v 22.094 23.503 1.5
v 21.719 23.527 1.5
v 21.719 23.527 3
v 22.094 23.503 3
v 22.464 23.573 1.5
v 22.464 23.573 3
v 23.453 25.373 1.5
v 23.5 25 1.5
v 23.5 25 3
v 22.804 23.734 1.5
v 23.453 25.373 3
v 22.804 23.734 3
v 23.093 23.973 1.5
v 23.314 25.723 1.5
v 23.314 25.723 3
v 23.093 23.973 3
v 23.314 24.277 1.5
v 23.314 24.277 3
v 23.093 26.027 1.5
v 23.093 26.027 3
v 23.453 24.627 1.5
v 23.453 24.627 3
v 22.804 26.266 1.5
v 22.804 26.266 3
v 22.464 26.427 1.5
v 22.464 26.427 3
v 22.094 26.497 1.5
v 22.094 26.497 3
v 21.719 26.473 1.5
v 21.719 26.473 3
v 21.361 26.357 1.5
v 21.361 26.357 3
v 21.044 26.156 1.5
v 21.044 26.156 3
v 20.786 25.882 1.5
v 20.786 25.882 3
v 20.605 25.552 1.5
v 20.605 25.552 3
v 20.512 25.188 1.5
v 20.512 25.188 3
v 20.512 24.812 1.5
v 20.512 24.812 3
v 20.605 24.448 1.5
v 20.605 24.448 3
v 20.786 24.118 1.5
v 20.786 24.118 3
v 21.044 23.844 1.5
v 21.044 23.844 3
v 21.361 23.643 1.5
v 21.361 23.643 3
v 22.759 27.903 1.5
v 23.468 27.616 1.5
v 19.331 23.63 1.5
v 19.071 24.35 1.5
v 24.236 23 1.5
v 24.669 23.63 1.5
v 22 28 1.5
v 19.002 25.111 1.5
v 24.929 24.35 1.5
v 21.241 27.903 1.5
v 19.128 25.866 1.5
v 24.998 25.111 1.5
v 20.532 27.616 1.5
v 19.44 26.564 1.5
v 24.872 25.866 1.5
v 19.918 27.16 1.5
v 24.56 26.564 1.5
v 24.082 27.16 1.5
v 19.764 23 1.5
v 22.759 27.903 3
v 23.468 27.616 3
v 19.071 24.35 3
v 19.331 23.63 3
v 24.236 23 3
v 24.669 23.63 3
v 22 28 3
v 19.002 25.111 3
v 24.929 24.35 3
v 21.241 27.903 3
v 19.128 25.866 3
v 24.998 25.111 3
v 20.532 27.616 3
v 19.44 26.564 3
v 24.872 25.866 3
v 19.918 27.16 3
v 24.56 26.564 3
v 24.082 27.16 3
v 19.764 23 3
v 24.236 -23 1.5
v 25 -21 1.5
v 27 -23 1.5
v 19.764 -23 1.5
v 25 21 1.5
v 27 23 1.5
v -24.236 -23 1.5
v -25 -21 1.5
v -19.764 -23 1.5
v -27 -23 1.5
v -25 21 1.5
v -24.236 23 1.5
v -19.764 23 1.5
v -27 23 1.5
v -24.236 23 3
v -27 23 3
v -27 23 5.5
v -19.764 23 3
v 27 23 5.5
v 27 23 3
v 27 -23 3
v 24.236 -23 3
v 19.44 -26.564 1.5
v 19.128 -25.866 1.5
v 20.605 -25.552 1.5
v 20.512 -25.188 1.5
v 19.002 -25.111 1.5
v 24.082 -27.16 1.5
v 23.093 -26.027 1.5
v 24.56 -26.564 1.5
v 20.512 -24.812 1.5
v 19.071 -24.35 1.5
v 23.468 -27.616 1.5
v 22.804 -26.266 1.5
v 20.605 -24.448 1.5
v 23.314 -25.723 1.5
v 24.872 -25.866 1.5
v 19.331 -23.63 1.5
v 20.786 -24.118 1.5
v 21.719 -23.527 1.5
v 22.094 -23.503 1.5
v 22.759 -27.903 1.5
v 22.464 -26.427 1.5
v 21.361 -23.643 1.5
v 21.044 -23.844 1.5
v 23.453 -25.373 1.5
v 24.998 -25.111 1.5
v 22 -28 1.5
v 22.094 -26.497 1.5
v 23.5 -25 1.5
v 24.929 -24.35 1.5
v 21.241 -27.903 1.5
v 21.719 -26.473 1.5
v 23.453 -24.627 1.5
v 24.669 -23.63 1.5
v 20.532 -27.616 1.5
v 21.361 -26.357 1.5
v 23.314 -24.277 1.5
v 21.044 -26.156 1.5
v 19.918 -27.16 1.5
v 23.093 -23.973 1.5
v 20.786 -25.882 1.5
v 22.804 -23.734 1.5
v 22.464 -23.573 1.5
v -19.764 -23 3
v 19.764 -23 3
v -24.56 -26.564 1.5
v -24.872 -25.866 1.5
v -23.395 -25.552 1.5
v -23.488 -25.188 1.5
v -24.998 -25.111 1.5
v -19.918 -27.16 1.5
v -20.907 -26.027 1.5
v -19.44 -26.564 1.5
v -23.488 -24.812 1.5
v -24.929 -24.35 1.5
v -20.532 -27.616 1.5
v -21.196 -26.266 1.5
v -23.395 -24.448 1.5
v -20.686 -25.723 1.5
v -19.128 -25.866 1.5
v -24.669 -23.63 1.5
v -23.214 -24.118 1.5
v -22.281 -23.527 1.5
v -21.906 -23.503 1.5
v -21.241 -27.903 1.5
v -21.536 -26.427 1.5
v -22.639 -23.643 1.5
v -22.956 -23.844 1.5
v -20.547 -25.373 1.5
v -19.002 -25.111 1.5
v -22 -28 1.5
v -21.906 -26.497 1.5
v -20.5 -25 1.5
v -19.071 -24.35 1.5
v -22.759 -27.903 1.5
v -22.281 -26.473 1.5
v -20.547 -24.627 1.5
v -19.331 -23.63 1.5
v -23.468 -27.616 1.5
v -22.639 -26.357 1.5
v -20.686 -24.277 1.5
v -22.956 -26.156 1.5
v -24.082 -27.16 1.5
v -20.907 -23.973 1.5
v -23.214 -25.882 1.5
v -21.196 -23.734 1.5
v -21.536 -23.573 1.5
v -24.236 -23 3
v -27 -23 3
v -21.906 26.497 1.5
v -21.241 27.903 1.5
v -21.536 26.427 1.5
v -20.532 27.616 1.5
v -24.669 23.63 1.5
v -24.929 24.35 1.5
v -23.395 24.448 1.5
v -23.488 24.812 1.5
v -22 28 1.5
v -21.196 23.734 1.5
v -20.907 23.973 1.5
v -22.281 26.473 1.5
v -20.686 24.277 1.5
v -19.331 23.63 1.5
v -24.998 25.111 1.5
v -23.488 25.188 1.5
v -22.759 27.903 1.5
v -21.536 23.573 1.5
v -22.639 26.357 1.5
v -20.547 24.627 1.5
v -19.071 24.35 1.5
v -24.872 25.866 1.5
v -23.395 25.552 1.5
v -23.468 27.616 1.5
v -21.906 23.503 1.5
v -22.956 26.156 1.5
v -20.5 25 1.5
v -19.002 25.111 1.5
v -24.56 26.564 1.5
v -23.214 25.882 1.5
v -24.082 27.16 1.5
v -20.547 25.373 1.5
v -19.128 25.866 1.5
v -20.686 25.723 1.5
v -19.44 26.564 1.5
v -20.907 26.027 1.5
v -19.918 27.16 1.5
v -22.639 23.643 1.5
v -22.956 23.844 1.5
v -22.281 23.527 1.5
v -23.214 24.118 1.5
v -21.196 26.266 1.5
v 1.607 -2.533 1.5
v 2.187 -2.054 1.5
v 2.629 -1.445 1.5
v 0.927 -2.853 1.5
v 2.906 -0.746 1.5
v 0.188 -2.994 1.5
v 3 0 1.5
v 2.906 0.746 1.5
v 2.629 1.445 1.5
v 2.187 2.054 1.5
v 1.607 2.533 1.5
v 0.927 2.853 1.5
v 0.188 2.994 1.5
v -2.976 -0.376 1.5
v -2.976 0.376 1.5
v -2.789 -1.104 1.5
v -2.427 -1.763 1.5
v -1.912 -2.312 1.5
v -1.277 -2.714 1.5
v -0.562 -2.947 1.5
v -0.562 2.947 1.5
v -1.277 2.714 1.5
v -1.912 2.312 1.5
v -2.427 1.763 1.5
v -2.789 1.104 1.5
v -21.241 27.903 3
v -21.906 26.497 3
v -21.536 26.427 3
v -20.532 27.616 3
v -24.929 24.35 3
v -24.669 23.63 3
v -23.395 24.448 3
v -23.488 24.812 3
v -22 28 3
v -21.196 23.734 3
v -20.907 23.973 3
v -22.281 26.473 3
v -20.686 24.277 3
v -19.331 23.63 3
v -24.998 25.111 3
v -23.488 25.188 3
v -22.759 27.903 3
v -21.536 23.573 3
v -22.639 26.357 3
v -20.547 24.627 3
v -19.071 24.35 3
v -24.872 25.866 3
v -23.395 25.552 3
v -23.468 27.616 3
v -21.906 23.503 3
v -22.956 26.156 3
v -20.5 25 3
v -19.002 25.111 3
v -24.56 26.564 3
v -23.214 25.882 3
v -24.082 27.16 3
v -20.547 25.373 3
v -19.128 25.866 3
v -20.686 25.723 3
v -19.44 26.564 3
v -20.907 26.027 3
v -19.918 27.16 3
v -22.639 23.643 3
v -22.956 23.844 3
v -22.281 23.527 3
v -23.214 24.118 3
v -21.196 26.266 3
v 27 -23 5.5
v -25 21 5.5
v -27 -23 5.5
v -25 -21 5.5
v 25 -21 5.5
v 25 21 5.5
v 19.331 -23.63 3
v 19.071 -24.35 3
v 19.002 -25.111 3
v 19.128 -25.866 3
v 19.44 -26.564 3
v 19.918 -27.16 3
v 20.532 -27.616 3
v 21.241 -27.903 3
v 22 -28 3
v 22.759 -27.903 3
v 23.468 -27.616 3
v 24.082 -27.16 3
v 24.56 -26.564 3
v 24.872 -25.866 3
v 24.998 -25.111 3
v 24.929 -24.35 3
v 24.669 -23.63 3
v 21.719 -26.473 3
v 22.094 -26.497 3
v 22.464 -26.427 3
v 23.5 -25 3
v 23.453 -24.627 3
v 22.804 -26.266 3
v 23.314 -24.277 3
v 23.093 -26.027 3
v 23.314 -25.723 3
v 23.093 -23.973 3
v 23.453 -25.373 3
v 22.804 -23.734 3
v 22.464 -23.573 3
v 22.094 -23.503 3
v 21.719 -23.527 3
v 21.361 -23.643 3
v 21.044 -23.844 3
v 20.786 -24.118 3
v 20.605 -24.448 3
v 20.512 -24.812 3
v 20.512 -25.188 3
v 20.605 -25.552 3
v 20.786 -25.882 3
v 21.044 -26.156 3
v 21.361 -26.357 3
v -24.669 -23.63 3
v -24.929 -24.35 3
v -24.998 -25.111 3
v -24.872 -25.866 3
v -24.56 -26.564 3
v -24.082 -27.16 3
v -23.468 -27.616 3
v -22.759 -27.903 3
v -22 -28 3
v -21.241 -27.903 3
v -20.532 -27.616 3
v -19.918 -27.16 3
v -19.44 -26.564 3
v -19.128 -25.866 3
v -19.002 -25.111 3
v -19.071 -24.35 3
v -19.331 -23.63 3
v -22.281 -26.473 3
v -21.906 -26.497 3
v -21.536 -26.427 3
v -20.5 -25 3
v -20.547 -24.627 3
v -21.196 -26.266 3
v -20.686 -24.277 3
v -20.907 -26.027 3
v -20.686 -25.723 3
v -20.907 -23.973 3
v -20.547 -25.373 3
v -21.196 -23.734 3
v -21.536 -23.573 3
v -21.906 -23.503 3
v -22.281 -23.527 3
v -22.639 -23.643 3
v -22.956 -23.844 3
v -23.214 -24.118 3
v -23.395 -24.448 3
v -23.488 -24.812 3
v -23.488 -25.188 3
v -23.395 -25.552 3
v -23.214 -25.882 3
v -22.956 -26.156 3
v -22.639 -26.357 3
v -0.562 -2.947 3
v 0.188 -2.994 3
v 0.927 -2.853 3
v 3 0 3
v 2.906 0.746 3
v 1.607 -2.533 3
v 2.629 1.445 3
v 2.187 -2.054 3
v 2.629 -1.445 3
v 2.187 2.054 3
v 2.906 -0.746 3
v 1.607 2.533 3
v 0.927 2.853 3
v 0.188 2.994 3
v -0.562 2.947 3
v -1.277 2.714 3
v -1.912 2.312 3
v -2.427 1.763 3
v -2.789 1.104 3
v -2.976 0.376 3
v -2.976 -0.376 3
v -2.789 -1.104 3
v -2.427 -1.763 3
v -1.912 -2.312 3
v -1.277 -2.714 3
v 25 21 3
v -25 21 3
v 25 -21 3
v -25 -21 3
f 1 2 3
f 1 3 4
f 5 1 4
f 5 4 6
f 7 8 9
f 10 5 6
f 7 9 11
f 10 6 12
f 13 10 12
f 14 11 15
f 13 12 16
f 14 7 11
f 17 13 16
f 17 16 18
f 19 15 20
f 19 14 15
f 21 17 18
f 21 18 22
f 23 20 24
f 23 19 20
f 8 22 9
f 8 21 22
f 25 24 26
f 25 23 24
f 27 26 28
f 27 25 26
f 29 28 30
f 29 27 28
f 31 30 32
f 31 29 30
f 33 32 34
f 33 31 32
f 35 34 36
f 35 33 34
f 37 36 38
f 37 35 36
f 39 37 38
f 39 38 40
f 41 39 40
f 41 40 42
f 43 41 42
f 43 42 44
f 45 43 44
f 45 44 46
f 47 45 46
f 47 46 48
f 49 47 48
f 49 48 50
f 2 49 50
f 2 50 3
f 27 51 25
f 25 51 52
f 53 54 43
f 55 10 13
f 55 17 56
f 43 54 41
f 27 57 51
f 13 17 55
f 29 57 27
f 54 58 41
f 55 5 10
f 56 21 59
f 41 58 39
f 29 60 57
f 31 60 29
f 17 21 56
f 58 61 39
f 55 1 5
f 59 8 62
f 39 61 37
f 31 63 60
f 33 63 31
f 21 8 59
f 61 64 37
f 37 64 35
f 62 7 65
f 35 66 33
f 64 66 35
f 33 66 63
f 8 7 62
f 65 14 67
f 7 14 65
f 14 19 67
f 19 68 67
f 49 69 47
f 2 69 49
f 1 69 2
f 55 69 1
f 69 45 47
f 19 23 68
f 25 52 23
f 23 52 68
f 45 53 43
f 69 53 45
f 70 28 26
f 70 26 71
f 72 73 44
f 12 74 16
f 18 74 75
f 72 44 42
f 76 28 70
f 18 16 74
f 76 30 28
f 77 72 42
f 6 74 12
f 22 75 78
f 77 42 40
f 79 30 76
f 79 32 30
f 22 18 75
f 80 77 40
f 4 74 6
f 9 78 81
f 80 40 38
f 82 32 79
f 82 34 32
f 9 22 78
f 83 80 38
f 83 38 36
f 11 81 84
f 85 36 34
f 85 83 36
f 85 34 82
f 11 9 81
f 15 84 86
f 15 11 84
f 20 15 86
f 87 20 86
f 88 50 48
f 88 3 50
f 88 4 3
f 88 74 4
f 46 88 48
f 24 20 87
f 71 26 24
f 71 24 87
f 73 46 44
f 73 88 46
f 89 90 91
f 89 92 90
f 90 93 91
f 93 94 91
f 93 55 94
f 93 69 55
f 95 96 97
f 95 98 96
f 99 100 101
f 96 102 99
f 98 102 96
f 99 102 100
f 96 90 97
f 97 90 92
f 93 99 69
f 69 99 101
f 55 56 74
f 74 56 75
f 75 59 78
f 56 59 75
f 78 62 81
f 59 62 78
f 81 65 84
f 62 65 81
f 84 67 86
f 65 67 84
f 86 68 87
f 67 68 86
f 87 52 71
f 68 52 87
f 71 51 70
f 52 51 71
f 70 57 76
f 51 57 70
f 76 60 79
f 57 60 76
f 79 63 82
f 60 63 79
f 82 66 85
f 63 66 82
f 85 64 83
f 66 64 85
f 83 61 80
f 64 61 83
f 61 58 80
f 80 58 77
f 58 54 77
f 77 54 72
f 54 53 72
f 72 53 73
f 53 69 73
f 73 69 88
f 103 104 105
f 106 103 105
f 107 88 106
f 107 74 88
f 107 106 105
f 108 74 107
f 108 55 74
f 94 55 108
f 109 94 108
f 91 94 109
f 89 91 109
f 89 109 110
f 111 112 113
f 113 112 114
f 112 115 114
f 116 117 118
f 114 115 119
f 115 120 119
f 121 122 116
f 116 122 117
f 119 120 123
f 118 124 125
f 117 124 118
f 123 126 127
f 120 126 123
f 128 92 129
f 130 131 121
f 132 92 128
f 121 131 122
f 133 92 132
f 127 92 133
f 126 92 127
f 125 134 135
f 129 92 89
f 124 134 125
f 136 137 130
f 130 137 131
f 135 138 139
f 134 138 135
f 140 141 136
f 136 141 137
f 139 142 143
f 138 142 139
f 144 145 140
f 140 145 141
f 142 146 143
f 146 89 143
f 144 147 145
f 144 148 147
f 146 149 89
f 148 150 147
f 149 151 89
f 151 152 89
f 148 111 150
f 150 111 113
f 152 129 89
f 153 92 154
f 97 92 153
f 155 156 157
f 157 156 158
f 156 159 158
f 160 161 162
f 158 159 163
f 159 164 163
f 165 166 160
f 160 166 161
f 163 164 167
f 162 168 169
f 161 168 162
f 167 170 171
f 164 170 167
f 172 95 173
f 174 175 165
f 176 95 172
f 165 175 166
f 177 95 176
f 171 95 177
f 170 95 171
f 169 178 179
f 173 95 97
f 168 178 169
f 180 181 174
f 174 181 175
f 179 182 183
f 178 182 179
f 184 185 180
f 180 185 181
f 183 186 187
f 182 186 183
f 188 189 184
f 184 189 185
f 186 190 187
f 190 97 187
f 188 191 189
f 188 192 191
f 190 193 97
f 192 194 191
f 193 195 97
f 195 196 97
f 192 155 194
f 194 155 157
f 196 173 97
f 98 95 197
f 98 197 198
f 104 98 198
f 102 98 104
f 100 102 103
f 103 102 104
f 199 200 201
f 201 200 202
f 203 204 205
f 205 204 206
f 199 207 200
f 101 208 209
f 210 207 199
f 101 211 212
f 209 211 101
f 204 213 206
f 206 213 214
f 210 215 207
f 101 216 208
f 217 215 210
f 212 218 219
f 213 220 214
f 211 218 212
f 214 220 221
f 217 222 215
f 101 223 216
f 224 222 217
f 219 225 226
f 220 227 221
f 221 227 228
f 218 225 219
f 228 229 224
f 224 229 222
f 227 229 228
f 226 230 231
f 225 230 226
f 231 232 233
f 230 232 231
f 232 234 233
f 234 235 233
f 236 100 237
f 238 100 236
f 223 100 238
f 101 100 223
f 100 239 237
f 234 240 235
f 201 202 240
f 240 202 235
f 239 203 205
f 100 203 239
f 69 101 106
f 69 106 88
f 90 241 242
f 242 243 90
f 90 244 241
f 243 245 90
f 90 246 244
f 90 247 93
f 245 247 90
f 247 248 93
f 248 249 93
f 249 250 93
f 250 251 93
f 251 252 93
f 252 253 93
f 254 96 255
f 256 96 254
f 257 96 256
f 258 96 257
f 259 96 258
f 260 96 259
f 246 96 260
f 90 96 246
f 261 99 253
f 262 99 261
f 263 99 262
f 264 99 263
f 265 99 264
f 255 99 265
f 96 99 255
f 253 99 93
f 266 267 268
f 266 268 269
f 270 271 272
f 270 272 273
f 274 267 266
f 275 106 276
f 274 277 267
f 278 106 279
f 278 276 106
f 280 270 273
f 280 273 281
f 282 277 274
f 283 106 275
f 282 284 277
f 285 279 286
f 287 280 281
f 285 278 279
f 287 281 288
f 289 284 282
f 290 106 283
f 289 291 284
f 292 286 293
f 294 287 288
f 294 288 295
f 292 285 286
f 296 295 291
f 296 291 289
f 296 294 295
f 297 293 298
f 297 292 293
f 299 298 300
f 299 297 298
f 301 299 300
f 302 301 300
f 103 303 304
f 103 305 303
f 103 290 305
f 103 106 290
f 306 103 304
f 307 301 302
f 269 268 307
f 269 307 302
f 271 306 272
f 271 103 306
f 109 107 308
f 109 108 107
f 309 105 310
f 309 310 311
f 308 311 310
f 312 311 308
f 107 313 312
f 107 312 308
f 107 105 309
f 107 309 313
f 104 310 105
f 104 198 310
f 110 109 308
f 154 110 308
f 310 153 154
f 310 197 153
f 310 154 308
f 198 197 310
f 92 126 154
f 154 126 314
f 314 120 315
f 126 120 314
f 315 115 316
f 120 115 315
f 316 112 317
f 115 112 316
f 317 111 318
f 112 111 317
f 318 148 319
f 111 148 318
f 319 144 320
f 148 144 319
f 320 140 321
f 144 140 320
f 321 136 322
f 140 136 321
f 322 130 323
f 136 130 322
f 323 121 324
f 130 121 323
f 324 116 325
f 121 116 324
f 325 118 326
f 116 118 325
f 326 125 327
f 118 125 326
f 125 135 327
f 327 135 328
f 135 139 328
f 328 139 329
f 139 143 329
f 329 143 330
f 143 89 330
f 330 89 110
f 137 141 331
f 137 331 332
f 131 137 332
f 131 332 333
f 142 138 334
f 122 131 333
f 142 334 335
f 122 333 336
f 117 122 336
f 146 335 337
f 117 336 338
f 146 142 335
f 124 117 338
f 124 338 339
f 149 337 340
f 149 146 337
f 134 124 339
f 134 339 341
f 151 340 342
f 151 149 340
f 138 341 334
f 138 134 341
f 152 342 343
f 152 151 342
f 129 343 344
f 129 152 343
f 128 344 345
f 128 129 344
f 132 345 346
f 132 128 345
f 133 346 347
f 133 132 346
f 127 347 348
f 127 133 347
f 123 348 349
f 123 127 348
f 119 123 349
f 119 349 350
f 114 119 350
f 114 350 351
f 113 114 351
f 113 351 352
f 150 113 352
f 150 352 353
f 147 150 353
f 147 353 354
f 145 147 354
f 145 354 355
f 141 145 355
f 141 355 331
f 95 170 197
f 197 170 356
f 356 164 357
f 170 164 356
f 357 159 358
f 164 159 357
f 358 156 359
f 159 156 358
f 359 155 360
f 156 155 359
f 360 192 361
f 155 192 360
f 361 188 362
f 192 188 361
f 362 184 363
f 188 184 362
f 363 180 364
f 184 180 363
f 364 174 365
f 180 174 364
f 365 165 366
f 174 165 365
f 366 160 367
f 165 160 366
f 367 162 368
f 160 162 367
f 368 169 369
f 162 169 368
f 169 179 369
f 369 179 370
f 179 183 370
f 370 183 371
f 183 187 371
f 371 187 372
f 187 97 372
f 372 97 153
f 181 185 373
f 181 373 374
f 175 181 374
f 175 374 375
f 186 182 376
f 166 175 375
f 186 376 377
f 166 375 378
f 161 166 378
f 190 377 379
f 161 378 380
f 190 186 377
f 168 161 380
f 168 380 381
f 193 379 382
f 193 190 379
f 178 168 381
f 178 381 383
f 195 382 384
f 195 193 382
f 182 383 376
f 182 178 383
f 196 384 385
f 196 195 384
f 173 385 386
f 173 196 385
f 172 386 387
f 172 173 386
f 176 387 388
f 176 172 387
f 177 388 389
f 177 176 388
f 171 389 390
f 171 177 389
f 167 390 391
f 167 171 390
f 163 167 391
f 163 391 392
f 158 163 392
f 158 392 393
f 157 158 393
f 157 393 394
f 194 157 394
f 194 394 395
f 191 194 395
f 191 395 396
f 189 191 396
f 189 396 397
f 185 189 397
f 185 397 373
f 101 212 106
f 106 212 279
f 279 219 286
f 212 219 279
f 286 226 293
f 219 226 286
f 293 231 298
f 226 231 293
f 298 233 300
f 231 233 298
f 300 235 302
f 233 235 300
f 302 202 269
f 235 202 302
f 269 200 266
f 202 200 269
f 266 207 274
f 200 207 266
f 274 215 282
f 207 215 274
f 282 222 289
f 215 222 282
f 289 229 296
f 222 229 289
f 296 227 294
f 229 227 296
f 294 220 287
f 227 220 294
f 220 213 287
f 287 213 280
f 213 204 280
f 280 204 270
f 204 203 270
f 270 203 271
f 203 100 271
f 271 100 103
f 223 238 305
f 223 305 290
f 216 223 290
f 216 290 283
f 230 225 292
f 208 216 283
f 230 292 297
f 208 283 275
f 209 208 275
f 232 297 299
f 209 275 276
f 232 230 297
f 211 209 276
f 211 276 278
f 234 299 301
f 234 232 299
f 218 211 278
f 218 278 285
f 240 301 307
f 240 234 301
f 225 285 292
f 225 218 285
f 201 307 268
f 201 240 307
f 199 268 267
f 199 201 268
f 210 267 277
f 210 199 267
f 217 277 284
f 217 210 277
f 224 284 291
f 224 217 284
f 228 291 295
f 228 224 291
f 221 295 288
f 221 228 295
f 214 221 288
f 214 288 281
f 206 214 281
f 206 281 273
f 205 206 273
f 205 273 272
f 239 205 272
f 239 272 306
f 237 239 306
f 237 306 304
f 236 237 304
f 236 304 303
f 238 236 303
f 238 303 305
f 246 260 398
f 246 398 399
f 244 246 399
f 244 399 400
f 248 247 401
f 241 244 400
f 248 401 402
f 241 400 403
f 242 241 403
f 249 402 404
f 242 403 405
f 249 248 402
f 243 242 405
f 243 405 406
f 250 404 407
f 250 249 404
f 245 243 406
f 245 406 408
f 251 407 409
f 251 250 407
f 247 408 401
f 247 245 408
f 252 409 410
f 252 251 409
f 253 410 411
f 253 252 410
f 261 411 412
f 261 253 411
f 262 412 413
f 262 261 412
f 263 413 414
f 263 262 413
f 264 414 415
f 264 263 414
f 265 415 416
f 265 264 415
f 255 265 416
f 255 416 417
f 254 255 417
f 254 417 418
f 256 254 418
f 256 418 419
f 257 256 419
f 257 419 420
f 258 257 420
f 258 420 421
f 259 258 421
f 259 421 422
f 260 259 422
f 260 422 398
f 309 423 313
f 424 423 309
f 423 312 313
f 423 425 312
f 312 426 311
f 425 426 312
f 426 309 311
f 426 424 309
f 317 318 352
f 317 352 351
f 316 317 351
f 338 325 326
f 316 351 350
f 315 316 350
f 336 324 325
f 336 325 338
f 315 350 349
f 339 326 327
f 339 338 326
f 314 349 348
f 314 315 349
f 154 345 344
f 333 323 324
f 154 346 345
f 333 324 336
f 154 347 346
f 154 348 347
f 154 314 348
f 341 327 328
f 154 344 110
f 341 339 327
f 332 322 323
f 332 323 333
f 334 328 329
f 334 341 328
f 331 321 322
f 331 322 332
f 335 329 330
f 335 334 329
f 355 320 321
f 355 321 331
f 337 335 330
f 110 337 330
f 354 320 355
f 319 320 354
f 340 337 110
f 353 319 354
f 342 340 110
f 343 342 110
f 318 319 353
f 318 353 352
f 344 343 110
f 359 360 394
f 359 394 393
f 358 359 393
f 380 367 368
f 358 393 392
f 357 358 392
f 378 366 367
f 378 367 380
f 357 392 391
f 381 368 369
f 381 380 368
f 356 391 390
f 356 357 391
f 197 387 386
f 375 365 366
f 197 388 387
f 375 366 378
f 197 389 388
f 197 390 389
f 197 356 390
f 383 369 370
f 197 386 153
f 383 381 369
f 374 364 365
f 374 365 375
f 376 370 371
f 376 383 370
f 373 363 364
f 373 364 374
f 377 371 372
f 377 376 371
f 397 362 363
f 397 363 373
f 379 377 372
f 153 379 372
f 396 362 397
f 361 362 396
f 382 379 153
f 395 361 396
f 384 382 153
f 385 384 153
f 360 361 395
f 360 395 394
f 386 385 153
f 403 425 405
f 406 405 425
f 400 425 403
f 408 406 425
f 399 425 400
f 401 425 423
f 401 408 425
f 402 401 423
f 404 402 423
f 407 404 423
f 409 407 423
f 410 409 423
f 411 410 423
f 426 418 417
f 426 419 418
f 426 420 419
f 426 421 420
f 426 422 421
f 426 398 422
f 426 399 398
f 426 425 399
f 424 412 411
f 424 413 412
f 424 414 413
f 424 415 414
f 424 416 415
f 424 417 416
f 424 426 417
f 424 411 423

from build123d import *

# Parameters (mm, degrees)
SKETCH_W         = 54
SKETCH_H         = 46
SKETCH_W_2       = 50
SKETCH_H_2       = 42
EXTRUDE001_DEPTH = 4
SKETCH001_R      = 1.5
SKETCH001_R_2    = 3
EXTRUDE_DEPTH    = 1.5


with BuildPart() as extrude001:
    # Sketch → Extrude001 (new body)
    with BuildSketch(Plane.XY.offset(1.5)):
        Rectangle(SKETCH_W, SKETCH_H)
        Rectangle(SKETCH_W_2, SKETCH_H_2, mode=Mode.SUBTRACT)
    extrude(amount=EXTRUDE001_DEPTH)


with BuildPart() as fusion:
    # Sketch001 (on Sketch) → Extrude (new body)
    with BuildSketch(Plane.XY.offset(1.5)):
        with BuildLine():
            Line((27, 23), (27, -23))
            Line((27, -23), (24.236068, -23))
            ThreePointArc((19.763932, -23), (22, -28), (24.236068, -23))
            Line((19.763932, -23), (-19.763932, -23))
            ThreePointArc((-24.236068, -23), (-22, -28), (-19.763932, -23))
            Line((-24.236068, -23), (-27, -23))
            Line((-27, -23), (-27, 23))
            Line((-24.236068, 23), (-27, 23))
            ThreePointArc((-19.763932, 23), (-22, 28), (-24.236068, 23))
            Line((-19.763932, 23), (19.763932, 23))
            ThreePointArc((24.236068, 23), (22, 28), (19.763932, 23))
            Line((24.236068, 23), (27, 23))
        make_face()
        with Locations((-22, 25)):
            Circle(SKETCH001_R, mode=Mode.SUBTRACT)
        with Locations((22, 25)):
            Circle(SKETCH001_R, mode=Mode.SUBTRACT)
        with Locations((-22, -25)):
            Circle(SKETCH001_R, mode=Mode.SUBTRACT)
        with Locations((22, -25)):
            Circle(SKETCH001_R, mode=Mode.SUBTRACT)
        Circle(SKETCH001_R_2, mode=Mode.SUBTRACT)
    extrude(amount=EXTRUDE_DEPTH)

    # Fusion: union Extrude001
    add(extrude001.part)


solid = fusion.part
